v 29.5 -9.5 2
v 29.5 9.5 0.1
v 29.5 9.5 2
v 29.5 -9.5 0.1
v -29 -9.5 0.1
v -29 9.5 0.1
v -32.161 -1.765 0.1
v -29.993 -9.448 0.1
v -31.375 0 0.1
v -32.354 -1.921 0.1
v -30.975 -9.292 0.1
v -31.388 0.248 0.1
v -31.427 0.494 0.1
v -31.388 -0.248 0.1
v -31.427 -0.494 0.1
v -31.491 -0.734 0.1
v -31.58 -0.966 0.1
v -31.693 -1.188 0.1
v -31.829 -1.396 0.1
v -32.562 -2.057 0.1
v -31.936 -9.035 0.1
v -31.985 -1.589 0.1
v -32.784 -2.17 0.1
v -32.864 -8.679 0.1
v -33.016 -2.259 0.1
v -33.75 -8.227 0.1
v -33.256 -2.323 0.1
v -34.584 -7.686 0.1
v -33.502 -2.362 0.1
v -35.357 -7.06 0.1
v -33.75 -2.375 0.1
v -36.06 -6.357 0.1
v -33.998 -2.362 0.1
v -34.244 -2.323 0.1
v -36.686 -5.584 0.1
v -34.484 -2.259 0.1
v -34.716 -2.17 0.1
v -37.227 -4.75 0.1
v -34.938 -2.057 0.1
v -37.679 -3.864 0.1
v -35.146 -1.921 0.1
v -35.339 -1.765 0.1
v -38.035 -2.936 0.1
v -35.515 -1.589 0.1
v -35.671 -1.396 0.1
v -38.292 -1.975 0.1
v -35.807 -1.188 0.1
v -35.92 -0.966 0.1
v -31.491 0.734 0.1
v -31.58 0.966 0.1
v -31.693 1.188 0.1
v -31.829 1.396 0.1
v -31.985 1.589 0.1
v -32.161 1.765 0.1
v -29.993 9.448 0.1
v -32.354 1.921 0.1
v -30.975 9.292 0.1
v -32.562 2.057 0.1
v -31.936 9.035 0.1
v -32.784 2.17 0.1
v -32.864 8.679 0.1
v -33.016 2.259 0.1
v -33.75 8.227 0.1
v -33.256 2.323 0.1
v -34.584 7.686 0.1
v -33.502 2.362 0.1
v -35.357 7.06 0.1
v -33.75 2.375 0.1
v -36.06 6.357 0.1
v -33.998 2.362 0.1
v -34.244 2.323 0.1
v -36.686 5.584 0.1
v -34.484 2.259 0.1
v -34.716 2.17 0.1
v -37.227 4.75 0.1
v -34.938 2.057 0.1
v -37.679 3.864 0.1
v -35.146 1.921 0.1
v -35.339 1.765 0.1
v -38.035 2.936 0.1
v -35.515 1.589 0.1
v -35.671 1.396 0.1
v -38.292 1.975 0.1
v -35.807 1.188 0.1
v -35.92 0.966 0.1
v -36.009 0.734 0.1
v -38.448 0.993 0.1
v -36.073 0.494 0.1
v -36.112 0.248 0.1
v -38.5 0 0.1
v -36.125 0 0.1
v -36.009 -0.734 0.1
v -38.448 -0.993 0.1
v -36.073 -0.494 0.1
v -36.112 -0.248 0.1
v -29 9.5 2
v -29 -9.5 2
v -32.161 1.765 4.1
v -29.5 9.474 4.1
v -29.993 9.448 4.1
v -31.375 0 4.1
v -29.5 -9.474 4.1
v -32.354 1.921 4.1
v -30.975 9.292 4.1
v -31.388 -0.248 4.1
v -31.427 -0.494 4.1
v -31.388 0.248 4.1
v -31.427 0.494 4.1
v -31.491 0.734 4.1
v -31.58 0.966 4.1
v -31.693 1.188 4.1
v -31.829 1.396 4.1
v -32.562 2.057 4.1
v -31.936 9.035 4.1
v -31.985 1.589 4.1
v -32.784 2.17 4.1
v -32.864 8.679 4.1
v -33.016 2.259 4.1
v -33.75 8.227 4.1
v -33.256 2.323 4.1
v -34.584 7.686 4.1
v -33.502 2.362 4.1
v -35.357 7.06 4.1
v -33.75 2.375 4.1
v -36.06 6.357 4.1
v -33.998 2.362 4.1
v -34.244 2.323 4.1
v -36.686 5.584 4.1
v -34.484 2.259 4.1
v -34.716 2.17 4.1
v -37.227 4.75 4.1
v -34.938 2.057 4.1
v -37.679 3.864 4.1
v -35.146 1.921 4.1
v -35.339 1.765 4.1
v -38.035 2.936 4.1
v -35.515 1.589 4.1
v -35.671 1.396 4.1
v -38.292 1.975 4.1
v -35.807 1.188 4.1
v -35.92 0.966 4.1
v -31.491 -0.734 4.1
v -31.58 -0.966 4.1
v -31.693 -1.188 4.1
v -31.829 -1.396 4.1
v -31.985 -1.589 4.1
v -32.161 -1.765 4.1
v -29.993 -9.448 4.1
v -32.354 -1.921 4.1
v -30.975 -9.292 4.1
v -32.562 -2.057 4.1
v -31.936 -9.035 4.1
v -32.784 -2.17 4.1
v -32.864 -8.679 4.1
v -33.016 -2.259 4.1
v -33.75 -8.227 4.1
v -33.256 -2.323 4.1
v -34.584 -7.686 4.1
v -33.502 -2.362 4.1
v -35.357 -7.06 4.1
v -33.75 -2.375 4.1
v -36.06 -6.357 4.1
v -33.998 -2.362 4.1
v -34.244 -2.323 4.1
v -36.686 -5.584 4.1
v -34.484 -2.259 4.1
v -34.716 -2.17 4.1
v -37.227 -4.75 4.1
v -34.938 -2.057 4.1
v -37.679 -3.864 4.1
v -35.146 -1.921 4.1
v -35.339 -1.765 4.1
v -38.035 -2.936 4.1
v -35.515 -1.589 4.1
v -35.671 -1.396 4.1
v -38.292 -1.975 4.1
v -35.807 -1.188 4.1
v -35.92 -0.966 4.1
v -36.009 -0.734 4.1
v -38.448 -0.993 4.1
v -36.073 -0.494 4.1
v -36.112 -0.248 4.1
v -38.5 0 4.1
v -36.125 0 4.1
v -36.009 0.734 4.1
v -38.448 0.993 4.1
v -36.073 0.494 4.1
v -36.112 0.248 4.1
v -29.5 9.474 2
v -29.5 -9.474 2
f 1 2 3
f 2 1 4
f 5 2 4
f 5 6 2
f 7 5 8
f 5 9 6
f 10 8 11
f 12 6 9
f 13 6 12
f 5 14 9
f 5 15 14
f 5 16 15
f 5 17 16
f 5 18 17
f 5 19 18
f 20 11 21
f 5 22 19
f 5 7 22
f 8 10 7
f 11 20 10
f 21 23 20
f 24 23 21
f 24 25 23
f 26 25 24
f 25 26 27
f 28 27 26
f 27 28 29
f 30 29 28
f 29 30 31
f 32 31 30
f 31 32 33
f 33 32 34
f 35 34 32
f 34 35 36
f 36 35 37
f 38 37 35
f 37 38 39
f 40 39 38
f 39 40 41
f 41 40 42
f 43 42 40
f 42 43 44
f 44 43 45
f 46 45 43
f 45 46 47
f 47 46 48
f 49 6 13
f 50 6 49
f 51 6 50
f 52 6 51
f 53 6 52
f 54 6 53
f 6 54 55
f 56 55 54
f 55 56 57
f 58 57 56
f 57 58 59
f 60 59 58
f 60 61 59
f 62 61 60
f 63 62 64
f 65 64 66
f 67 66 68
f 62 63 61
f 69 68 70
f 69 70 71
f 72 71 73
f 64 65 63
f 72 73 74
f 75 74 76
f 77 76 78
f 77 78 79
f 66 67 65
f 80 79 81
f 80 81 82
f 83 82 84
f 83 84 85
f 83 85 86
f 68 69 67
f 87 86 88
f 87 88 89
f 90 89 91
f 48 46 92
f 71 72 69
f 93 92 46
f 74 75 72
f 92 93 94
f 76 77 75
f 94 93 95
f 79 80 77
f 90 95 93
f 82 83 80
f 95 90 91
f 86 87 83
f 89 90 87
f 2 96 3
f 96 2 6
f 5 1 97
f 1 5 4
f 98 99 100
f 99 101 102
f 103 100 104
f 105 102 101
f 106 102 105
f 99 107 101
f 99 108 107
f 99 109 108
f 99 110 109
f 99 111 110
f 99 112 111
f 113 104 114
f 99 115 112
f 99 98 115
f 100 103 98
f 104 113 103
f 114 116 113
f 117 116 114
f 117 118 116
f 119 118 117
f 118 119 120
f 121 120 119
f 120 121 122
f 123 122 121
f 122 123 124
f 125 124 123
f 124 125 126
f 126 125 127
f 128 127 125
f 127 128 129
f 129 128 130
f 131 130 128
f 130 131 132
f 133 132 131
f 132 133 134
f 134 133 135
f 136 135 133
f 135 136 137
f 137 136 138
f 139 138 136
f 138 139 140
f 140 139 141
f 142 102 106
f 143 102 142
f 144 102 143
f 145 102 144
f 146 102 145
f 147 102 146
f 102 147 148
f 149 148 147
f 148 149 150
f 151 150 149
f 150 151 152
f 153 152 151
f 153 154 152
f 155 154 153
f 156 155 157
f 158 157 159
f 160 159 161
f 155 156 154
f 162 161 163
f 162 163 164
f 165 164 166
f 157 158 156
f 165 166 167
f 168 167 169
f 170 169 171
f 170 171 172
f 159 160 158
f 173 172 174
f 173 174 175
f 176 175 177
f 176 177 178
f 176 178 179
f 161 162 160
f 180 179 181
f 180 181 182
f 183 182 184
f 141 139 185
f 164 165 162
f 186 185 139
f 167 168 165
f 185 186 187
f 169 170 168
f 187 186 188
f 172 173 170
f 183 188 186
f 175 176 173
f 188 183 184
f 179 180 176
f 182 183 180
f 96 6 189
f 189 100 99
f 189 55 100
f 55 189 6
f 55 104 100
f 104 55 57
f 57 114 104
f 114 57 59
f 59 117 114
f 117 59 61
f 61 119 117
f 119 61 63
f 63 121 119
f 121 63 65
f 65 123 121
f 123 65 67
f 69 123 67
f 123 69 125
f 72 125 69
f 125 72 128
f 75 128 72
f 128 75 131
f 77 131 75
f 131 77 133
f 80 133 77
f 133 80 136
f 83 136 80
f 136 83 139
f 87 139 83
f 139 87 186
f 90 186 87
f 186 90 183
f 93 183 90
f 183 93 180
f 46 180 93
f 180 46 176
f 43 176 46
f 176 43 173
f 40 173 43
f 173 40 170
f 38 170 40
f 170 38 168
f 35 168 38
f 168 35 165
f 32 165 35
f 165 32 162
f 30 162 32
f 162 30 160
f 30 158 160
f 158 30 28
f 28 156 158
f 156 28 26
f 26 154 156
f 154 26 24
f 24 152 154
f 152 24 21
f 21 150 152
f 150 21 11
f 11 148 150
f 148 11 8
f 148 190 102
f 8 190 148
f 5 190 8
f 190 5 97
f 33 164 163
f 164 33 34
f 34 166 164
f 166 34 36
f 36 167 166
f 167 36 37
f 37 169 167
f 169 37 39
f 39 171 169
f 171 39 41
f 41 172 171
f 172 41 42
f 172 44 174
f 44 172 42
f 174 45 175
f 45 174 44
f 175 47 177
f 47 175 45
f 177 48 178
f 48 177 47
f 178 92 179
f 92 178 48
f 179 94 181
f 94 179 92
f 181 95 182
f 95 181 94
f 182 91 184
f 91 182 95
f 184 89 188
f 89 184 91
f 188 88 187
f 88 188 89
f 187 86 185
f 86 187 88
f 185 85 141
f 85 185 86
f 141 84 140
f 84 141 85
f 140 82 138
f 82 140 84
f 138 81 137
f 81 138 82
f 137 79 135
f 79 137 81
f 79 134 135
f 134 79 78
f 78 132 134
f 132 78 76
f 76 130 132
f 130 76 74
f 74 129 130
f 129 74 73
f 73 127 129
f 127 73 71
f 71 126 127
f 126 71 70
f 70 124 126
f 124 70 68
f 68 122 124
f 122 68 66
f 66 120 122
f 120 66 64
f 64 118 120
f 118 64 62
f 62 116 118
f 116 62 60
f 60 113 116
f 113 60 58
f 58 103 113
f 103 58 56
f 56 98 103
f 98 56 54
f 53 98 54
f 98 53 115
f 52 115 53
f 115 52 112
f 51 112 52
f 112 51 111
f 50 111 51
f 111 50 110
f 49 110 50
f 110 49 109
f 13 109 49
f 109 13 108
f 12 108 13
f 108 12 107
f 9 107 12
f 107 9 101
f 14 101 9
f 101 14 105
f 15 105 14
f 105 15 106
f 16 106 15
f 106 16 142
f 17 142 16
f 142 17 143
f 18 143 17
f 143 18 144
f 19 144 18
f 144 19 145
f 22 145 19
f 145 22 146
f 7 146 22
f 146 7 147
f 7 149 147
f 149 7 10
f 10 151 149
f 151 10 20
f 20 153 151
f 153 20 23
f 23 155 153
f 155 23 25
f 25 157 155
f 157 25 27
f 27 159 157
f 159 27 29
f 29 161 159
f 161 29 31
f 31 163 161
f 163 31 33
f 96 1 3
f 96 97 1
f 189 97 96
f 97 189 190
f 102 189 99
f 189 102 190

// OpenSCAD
$fn=60;

confetti_w = 55;
confetti_h = 16;

margin = 3;

plate_w = confetti_w + margin;
plate_h = confetti_h + margin;

thickness = 2;

bottom_plate_thickness = thickness;
circle_radius = plate_h / 8;

gap_offset = 0.5;

module key_ring(h) {
     linear_extrude(height=h, center=true) {
          difference() {
               circle(plate_h/2);
               translate([-plate_h / 4, 0, 0]) {
                    circle(circle_radius);
               }
          }
     }
}

difference() {
     union() {
          translate([gap_offset / 2, 0, bottom_plate_thickness / 2 + 0.1]) {
               cube([plate_w + gap_offset, plate_h, bottom_plate_thickness], center=true);
          }
          translate([-plate_w / 2, 0, thickness + 0.1]) {
               key_ring(thickness * 2);
          }
     }
     translate([0, 0, bottom_plate_thickness * 1.5 + 0.5]) cube([plate_w + 1, plate_h + 2, bottom_plate_thickness + 1], center=true);
}
